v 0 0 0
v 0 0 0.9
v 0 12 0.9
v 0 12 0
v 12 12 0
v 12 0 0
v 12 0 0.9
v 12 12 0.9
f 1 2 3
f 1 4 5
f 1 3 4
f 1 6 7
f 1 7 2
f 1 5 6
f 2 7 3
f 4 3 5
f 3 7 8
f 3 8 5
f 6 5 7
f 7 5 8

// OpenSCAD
/* Warning, this is a very basic generator with a lot of approximation 
input data : [VQFN, KBX, 12x12x0.9mm, 88, , C, C04-00388C]
generated by com.zoubworld.electronics.cad.model3d.Basic
Date : Sun Feb 15 10:50:48 CET 2026
*/

//body
color("black")
translate([0,0,0])
cube([12.0,12.0,0.9], center=false);
